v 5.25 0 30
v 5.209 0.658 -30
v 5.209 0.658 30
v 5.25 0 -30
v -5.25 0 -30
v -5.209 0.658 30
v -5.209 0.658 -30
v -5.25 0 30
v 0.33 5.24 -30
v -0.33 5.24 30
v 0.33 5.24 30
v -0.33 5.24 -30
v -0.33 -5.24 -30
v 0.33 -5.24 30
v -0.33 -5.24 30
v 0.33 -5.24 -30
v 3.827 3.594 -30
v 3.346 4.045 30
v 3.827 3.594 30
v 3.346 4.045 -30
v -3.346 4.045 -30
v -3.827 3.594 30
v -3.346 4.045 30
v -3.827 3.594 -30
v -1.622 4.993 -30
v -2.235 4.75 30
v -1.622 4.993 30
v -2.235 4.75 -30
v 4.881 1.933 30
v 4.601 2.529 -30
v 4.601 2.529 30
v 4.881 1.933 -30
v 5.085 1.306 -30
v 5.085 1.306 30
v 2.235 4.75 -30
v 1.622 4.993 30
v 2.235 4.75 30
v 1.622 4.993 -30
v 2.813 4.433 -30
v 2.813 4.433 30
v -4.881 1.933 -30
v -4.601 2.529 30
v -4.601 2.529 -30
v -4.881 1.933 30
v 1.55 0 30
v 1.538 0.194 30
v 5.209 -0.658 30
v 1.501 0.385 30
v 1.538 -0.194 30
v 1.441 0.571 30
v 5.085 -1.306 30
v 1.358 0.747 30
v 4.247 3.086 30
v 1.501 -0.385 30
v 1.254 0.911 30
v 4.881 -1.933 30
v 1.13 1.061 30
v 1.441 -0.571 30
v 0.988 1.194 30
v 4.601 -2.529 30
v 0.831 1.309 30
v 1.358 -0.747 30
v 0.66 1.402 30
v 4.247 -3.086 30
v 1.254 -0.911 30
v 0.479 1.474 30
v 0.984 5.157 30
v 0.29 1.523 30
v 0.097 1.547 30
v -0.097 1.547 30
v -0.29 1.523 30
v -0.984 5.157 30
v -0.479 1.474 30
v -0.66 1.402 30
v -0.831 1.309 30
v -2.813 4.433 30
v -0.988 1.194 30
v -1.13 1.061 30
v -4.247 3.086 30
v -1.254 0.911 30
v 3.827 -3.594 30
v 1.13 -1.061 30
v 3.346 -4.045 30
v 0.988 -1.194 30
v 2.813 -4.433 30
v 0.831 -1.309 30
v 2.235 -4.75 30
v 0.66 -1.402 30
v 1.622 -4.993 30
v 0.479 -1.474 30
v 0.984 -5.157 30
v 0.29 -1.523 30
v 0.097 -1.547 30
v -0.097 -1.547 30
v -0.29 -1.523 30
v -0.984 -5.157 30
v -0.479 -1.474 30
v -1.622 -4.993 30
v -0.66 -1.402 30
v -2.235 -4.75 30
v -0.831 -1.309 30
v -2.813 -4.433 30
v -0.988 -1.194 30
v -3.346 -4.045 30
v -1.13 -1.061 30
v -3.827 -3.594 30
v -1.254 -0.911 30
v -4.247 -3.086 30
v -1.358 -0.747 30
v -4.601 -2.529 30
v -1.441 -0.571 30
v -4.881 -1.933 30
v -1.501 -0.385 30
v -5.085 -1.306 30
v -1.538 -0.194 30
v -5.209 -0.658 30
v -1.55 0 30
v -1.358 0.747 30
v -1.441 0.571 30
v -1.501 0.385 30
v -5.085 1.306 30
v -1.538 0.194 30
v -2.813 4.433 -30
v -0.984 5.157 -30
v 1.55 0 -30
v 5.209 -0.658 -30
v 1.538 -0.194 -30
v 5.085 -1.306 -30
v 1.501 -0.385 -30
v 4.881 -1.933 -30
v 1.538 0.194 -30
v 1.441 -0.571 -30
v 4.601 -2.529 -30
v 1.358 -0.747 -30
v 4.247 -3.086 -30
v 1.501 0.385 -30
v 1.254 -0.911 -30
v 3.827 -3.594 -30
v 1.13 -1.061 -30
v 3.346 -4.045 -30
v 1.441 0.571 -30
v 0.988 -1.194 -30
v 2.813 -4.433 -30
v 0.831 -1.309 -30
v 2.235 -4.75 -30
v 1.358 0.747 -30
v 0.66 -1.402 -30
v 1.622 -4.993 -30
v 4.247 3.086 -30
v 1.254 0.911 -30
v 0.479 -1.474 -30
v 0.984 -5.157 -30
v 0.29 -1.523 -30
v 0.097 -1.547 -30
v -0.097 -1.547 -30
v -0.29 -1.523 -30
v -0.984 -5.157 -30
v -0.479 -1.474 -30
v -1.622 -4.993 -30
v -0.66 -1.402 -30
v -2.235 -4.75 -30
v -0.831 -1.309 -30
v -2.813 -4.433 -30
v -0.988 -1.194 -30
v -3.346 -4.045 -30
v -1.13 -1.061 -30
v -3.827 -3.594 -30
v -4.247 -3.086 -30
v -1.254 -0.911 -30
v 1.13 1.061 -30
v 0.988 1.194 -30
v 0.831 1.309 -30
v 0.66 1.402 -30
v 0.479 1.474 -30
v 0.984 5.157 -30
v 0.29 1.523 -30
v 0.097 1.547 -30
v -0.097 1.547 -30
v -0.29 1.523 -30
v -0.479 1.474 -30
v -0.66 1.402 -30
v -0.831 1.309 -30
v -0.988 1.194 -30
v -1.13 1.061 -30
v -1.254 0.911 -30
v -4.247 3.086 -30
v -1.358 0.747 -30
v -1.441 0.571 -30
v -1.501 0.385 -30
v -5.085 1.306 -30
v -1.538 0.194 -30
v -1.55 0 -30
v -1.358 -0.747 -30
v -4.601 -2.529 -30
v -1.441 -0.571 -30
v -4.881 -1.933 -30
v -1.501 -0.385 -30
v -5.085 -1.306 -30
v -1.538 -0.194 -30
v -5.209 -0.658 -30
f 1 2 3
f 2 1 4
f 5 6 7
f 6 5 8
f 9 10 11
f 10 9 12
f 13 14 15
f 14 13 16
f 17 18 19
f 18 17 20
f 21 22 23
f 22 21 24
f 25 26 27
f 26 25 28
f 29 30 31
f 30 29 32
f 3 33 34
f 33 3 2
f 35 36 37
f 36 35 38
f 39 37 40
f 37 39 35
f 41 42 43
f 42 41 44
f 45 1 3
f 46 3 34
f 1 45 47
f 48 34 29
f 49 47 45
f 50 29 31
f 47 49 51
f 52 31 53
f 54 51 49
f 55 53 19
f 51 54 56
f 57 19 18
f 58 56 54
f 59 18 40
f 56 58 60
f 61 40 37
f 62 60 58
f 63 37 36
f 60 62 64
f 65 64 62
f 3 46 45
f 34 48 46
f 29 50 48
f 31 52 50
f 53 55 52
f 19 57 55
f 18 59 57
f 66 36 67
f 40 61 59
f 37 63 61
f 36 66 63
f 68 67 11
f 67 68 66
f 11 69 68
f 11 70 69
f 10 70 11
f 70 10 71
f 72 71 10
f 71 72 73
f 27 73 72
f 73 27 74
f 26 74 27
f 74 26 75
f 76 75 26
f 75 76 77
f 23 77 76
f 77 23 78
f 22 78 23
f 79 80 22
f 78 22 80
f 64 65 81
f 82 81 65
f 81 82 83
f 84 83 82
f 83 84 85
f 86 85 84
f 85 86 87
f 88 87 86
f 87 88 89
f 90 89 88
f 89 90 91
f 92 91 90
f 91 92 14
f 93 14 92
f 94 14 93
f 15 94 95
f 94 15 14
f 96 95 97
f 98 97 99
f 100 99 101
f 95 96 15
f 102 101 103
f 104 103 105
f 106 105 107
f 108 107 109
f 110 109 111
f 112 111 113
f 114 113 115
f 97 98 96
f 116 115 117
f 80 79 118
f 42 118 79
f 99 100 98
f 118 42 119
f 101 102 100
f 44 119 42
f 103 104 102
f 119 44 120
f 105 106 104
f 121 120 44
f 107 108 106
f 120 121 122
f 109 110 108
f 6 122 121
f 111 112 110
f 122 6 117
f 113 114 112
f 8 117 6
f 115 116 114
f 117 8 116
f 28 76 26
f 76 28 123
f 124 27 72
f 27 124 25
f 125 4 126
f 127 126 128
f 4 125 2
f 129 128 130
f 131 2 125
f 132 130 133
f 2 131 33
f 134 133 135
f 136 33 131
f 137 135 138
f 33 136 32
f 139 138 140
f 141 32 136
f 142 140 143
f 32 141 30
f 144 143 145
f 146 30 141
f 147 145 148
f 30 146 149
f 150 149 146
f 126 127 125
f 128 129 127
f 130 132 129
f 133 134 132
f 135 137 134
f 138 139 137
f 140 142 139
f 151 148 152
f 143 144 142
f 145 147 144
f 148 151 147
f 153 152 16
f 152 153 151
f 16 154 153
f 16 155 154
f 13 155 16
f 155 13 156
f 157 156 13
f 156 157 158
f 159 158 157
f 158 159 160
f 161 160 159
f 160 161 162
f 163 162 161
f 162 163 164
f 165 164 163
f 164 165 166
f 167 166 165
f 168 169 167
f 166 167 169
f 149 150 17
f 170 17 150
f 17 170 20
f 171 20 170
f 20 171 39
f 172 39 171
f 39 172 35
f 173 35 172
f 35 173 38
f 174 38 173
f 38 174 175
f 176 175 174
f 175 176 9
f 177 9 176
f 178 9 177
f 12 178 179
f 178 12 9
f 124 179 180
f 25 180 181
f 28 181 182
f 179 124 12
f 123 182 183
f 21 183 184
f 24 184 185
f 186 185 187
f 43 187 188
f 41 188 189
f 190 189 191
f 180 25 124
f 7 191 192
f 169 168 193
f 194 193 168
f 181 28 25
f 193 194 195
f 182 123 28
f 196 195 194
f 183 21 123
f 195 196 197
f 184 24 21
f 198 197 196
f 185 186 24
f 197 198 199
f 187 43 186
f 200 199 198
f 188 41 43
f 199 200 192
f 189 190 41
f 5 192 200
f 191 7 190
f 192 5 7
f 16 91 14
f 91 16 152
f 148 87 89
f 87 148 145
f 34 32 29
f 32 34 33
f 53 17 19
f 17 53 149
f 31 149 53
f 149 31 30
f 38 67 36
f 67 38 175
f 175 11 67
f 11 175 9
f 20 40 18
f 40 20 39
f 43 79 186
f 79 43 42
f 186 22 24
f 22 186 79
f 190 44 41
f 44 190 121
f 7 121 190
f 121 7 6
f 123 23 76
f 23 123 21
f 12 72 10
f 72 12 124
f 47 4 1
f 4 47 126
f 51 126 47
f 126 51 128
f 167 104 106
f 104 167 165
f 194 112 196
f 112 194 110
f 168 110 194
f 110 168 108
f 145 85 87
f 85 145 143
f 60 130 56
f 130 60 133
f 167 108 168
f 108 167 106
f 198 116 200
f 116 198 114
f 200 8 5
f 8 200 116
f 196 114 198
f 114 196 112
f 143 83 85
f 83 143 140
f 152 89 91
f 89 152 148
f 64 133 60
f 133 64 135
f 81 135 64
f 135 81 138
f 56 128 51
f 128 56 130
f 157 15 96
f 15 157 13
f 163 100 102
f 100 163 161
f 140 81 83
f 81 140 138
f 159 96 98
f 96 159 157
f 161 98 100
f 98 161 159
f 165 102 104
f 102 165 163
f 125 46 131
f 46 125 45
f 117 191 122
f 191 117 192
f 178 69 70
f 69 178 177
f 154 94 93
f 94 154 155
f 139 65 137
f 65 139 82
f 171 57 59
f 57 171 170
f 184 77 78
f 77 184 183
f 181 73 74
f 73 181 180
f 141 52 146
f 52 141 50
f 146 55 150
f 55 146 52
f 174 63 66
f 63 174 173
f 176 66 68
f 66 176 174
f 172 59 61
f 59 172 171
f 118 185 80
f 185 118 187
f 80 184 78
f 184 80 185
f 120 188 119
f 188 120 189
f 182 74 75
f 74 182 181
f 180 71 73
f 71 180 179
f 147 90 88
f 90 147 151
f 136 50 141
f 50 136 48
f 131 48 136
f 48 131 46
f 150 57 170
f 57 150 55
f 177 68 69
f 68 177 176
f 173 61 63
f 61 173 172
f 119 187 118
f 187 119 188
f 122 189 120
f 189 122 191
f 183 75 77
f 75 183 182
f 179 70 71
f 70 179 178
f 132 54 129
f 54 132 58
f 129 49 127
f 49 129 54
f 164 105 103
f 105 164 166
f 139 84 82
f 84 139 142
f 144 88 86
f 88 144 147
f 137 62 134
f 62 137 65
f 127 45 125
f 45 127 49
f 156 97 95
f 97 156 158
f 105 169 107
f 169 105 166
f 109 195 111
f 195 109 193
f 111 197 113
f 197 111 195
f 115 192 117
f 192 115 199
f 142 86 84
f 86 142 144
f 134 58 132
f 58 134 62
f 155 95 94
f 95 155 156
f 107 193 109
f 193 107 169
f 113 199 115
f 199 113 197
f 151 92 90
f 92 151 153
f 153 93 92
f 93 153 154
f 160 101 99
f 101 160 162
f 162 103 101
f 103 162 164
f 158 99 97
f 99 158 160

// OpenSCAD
$fn = 50;


difference() {
	union() {
		translate(v = [0, 0, -30.0000000000]) {
			cylinder(h = 60, r = 5.2500000000);
		}
	}
	union() {
		translate(v = [0, 0, -100.0000000000]) {
			cylinder(h = 200, r = 1.5500000000);
		}
	}
}
